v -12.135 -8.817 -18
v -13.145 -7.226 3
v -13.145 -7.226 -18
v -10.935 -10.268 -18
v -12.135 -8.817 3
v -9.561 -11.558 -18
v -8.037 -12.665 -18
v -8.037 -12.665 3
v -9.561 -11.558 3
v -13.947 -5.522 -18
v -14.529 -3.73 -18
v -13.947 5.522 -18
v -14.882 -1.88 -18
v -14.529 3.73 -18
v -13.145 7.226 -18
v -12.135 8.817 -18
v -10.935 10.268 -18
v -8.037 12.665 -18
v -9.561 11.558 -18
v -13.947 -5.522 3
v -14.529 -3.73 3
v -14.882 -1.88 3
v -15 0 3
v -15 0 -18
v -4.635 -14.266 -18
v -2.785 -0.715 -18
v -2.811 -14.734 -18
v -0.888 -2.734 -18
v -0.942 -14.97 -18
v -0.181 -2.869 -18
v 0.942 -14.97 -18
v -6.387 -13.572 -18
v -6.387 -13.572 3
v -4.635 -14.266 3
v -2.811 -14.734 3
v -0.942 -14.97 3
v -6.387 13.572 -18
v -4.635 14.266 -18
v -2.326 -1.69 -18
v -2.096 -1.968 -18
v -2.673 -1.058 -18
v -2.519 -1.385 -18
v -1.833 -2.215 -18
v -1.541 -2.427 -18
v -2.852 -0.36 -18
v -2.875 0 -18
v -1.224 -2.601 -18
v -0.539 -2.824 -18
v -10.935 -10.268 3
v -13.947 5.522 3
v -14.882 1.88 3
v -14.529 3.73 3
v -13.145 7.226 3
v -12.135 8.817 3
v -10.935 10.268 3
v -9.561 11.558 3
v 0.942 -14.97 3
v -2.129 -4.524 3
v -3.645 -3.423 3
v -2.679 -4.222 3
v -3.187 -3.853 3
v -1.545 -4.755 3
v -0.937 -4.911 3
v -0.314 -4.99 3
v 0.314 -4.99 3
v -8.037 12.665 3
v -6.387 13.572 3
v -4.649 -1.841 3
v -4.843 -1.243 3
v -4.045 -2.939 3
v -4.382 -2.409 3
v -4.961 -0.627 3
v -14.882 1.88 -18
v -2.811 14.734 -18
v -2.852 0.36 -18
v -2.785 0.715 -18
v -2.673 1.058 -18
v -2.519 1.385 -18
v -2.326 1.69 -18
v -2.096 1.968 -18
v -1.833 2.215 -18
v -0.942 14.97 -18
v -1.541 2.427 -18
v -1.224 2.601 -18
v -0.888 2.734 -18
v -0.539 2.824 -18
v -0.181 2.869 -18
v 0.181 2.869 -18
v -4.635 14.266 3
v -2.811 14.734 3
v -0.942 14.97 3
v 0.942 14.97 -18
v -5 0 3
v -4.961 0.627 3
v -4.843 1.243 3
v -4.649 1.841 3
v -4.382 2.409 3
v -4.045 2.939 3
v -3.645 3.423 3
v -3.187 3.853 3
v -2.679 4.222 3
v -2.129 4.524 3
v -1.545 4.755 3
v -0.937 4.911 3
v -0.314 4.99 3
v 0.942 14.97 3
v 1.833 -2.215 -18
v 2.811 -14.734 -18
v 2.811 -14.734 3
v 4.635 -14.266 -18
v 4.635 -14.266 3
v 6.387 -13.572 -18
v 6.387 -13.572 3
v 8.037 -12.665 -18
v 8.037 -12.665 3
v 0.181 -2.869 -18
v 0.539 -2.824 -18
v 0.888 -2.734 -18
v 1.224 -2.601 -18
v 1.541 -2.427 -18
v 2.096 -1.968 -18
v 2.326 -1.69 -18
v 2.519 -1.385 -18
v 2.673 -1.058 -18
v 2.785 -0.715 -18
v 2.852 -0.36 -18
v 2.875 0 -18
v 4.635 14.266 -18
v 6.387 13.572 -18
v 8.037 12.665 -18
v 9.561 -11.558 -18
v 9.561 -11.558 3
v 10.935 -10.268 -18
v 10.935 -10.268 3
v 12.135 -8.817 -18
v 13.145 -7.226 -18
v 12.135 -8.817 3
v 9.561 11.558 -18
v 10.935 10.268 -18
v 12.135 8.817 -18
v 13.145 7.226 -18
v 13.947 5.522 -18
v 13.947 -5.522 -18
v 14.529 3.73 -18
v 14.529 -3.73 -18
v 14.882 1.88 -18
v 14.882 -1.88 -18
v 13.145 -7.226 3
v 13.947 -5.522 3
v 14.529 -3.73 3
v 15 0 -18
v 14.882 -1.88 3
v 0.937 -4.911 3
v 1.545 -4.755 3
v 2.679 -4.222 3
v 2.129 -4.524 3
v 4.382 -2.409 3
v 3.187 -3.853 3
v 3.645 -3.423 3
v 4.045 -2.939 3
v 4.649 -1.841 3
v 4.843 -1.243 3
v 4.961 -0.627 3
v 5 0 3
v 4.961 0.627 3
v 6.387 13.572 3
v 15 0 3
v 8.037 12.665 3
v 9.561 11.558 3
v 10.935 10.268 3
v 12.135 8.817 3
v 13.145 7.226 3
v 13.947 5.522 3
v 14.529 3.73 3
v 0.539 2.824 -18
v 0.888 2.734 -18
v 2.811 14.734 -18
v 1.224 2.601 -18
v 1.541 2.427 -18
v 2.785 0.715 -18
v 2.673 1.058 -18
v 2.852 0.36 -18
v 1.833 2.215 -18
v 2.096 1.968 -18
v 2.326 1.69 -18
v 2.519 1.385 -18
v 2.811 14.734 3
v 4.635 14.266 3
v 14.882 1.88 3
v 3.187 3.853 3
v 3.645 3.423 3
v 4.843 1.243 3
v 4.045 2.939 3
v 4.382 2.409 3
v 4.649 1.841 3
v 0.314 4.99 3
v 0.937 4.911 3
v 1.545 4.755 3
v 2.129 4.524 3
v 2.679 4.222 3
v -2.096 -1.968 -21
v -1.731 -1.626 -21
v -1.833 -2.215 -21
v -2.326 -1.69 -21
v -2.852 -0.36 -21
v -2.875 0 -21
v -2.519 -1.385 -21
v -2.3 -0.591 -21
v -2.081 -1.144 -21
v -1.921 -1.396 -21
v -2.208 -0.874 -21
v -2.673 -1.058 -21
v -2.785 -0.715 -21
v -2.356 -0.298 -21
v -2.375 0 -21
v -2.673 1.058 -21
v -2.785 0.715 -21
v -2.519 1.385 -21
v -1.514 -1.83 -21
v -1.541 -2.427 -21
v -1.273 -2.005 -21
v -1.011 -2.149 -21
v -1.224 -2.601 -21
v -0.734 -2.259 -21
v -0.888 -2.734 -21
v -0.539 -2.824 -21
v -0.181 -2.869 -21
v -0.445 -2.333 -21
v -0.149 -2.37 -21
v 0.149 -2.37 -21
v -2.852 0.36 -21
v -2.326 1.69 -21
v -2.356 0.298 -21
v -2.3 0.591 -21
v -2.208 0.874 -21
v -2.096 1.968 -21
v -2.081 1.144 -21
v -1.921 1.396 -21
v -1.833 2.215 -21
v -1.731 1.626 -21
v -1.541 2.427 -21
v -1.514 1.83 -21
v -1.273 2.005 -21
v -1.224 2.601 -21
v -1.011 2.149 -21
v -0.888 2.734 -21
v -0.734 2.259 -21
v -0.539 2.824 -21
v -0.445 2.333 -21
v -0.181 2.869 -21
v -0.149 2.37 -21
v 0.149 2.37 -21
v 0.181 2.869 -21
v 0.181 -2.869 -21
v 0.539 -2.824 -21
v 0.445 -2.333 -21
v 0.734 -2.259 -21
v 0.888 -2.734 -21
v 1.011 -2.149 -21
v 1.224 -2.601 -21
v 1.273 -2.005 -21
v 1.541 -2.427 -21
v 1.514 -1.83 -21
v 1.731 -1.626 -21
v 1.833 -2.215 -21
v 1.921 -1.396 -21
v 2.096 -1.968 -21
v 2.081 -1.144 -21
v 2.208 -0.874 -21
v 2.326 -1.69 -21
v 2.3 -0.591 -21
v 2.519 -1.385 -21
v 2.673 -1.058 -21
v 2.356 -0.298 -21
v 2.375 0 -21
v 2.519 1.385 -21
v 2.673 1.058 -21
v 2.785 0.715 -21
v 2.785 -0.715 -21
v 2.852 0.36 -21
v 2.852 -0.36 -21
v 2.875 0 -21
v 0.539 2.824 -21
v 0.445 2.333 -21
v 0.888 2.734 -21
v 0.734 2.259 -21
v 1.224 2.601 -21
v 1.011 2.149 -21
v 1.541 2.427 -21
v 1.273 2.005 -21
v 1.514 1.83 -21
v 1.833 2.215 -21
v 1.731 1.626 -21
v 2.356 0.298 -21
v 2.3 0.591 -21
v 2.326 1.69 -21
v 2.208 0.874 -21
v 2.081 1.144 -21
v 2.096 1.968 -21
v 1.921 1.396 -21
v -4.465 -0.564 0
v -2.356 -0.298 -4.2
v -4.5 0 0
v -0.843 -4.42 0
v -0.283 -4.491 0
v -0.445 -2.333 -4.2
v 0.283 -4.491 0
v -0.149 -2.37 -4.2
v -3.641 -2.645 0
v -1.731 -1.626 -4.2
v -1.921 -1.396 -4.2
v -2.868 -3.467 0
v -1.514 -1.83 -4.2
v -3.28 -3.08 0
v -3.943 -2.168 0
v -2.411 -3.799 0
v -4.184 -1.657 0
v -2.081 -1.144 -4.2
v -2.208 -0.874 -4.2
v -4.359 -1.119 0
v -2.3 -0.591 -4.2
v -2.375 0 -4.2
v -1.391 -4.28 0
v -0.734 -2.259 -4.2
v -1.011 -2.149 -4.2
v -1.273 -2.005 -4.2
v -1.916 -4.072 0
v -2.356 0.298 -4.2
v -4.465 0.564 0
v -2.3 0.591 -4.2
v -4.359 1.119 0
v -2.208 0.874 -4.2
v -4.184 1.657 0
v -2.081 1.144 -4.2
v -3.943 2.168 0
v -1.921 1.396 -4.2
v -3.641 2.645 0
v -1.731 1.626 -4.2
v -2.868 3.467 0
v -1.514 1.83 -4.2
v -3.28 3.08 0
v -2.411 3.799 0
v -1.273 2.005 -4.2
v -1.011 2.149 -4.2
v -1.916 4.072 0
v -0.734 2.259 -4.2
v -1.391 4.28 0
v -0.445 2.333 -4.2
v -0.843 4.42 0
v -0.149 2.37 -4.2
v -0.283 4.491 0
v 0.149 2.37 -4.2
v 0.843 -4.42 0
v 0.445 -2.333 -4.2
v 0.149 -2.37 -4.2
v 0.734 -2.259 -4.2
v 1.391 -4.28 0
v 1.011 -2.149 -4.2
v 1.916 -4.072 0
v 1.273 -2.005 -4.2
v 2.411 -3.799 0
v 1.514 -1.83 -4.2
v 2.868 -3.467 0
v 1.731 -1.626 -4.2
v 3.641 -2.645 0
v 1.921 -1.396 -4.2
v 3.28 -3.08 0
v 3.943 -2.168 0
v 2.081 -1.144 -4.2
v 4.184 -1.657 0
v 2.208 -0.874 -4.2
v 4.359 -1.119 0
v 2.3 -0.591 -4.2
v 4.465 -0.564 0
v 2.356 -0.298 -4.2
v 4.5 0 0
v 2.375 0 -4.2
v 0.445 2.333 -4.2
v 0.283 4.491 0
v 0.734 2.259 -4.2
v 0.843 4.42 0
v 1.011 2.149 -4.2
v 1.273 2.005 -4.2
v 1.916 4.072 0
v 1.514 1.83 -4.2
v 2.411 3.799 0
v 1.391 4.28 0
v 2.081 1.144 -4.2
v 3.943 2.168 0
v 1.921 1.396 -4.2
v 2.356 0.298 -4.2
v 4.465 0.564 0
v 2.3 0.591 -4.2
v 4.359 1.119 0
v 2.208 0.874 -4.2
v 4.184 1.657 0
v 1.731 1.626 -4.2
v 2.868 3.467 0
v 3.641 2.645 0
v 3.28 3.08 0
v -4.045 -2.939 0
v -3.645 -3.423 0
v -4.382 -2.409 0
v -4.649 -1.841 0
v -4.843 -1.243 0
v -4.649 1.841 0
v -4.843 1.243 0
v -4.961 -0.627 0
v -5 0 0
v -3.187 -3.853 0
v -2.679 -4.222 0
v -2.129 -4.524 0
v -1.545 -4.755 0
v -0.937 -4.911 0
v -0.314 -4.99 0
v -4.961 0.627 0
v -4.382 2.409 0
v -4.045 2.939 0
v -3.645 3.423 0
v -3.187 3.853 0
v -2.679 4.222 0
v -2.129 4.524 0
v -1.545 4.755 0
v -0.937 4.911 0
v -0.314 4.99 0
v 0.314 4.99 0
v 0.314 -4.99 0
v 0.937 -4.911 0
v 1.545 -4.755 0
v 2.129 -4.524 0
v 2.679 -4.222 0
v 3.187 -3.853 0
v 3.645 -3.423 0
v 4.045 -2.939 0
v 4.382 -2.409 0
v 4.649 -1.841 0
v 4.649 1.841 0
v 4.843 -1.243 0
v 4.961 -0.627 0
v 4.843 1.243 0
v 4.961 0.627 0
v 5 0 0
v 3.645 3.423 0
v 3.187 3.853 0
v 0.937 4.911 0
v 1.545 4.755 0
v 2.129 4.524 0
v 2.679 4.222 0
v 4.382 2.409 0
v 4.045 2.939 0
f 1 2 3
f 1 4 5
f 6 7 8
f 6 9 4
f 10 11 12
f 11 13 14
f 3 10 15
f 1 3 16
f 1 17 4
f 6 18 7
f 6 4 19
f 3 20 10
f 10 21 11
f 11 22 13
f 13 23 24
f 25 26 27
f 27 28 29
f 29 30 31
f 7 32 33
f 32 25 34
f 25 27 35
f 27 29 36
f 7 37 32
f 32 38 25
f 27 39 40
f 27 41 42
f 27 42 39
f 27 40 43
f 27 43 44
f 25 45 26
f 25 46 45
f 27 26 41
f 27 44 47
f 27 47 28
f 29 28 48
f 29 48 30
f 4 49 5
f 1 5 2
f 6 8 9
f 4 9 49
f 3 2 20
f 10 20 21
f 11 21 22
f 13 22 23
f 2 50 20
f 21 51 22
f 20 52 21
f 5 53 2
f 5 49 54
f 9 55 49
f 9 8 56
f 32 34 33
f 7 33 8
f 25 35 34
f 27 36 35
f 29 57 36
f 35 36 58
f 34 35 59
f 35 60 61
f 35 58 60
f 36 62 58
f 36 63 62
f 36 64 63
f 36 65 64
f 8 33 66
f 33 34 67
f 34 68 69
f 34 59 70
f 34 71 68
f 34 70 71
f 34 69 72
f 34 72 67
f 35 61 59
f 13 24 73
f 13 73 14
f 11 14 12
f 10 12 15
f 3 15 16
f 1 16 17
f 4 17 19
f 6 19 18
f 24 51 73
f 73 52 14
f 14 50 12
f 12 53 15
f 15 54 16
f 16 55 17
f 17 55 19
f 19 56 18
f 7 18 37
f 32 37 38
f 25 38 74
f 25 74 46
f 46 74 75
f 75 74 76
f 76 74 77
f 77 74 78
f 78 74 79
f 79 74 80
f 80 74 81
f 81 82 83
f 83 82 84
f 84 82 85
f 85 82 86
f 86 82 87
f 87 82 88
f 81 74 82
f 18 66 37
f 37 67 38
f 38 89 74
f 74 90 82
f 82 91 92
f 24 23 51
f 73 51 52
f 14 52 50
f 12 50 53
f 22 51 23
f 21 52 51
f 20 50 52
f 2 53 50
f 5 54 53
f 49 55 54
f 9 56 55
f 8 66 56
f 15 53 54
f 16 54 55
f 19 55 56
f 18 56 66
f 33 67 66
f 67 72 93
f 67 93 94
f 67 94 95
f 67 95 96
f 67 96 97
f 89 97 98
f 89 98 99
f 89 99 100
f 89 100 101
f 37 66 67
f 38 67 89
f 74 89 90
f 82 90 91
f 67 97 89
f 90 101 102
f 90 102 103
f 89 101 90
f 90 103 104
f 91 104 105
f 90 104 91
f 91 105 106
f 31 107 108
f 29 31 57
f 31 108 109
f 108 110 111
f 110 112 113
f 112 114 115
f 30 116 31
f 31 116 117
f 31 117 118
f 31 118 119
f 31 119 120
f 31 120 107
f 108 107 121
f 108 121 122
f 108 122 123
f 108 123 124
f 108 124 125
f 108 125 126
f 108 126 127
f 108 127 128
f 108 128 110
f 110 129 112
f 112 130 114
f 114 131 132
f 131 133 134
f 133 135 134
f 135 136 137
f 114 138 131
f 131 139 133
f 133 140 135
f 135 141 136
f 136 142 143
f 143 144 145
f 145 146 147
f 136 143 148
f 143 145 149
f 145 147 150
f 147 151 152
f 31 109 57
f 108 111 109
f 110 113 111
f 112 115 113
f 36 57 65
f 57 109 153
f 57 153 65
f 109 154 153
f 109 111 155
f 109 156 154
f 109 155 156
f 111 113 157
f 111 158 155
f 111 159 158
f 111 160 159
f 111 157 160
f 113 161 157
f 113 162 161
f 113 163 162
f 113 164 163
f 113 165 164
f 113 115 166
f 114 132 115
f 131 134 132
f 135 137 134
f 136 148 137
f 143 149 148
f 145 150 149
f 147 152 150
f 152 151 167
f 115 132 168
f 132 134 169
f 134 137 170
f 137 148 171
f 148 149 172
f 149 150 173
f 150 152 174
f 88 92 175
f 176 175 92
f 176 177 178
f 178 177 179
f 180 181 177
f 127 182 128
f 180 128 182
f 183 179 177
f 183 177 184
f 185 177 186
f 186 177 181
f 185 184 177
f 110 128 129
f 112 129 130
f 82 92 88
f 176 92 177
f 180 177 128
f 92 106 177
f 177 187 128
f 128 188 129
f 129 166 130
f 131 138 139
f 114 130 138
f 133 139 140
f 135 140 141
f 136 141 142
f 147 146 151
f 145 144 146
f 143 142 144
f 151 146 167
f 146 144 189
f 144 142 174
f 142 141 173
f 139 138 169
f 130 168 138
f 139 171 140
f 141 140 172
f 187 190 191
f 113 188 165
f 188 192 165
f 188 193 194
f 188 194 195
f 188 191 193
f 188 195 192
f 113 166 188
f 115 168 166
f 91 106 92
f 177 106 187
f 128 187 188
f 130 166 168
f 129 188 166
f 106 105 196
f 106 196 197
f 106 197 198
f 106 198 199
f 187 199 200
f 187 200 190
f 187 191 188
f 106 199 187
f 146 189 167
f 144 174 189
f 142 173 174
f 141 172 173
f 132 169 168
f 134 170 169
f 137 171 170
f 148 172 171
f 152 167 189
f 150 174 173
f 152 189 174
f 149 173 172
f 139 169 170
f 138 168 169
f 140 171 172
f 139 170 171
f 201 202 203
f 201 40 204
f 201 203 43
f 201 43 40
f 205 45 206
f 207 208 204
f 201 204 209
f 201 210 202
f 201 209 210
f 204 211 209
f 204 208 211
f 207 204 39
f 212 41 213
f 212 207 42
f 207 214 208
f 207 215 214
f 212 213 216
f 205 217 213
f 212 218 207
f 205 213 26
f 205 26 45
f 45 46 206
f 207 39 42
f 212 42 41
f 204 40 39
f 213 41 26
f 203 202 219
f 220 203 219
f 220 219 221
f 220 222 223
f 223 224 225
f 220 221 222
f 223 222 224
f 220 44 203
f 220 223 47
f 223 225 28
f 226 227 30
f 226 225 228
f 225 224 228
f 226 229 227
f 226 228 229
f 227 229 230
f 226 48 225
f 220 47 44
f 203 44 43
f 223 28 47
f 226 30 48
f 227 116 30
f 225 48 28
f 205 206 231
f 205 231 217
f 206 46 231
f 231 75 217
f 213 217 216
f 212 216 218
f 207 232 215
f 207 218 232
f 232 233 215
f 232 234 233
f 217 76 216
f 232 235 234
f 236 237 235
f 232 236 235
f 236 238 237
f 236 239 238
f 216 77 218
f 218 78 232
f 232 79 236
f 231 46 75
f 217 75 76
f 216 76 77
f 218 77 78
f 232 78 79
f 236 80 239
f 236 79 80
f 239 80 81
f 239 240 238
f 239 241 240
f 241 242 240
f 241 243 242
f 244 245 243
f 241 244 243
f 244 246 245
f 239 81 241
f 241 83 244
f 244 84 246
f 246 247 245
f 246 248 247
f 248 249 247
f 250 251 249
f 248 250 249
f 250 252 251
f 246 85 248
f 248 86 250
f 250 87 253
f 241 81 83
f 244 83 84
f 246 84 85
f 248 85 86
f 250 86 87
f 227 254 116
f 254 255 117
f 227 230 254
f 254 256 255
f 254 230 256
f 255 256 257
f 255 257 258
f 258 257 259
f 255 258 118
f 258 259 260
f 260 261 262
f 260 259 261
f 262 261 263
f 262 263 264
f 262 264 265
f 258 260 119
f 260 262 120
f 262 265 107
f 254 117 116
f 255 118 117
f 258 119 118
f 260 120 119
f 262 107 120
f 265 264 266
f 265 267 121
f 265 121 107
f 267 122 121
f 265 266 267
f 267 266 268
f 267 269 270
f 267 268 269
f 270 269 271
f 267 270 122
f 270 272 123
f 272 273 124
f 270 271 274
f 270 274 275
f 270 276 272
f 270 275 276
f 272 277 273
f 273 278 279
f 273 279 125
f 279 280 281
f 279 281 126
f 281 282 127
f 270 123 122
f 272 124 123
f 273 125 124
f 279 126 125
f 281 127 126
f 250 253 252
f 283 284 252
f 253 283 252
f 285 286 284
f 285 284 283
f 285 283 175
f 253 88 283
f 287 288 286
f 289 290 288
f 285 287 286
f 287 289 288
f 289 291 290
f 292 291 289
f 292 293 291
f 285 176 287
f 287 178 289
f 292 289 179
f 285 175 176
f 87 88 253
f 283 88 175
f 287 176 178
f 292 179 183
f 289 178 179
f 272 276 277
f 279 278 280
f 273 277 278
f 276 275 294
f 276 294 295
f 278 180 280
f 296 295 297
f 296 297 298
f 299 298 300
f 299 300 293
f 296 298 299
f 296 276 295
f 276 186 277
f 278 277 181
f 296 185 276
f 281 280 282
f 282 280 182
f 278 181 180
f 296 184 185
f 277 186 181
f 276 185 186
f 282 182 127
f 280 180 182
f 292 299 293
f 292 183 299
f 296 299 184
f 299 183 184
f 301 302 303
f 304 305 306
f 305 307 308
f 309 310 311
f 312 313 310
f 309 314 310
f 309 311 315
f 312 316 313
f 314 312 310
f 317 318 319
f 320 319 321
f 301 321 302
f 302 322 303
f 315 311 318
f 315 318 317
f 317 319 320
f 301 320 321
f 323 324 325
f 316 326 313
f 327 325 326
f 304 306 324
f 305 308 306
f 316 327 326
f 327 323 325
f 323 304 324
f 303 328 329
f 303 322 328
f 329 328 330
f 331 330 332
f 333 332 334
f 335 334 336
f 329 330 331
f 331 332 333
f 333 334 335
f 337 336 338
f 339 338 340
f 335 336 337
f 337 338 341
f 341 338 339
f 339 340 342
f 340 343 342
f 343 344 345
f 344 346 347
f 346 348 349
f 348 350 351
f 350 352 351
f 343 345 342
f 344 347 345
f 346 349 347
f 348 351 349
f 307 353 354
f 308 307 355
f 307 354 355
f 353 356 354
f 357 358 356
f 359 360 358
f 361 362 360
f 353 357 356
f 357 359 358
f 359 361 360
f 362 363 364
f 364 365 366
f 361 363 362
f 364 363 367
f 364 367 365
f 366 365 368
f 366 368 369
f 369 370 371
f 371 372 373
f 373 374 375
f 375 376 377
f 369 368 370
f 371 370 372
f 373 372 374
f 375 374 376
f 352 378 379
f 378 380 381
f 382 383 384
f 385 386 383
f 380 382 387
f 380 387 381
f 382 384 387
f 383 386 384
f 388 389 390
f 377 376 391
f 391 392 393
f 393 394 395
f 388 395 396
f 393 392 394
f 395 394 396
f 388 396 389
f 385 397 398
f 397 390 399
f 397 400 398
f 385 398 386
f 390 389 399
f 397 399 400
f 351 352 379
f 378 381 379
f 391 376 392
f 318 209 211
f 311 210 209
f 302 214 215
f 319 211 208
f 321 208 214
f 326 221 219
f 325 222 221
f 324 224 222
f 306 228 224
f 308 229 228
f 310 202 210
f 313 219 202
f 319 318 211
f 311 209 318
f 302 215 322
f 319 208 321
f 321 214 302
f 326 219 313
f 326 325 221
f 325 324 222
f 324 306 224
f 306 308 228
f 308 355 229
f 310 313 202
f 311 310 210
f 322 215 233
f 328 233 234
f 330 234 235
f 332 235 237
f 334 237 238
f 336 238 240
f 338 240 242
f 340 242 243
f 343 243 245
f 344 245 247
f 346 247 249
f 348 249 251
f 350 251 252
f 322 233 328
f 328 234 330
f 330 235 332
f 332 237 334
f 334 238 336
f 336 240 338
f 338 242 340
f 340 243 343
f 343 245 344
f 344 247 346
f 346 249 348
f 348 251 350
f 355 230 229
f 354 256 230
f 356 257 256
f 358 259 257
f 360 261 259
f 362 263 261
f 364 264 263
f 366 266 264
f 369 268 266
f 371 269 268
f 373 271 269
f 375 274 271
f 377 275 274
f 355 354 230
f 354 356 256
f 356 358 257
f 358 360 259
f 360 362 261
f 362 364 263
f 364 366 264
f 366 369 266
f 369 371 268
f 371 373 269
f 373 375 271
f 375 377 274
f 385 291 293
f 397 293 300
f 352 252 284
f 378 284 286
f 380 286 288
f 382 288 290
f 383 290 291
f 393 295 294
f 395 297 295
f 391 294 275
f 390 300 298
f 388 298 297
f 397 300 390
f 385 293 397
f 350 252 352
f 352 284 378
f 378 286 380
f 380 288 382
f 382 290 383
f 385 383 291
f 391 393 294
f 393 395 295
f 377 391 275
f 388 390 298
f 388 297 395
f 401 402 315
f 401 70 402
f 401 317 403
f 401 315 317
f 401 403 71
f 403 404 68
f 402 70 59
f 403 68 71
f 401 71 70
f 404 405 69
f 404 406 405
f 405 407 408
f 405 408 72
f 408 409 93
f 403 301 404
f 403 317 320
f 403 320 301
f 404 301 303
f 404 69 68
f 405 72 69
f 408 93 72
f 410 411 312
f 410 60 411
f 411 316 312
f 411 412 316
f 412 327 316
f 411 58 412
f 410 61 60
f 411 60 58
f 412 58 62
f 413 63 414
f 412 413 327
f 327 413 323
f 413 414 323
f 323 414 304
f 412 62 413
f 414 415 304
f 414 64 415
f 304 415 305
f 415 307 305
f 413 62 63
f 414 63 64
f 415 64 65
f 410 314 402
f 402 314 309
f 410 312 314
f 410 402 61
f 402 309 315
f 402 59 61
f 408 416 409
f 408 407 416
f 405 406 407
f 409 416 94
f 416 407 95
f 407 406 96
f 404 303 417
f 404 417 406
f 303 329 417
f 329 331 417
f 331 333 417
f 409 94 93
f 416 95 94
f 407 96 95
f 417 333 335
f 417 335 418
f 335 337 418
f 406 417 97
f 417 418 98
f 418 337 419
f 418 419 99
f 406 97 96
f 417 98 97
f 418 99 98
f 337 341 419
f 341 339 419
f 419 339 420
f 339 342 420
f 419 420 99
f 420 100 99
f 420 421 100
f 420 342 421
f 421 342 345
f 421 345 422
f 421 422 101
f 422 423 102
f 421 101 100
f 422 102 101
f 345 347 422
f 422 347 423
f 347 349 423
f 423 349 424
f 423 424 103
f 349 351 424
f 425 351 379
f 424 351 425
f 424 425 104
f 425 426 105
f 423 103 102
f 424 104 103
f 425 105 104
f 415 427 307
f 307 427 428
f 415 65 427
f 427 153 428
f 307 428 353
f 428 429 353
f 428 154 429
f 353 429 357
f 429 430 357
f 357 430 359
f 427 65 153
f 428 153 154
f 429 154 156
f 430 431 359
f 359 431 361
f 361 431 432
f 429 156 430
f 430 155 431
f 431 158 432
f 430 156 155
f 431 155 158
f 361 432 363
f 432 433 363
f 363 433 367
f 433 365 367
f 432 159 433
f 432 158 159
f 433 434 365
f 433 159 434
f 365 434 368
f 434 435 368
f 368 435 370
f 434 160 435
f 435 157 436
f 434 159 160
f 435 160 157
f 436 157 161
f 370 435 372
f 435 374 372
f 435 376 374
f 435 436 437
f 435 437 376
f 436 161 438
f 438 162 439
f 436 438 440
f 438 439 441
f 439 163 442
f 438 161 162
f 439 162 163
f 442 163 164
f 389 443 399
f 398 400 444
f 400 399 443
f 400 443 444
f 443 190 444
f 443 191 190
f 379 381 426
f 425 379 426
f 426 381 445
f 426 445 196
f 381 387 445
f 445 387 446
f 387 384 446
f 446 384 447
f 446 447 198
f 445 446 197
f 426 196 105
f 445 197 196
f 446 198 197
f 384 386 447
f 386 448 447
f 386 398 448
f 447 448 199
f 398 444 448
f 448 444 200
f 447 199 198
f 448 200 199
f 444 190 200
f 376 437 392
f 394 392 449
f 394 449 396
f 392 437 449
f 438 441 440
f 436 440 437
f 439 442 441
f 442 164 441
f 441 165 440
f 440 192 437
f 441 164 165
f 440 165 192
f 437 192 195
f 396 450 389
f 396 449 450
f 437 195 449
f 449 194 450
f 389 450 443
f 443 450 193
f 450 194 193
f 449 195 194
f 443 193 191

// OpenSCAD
$fn = 50;

difference() {
	union() {
		translate(v = [0, 0, -18.0]) {
			cylinder(h = 21, r = 15.0);
		}
		#translate(v = [0, 0, -21.0]) {
			cylinder(h = 21, r = 2.875);
		}
	}
	union() {
		translate(v = [0, 0, 0]) {
			rotate(a = [0, 0, 0]) {
				difference() {
					union() {
						translate(v = [0, 0, -21.0]) {
							cylinder(h = 21, r = 2.25);
						}
						translate(v = [0, 0, -4.2]) {
							cylinder(h = 4.2, r1 = 2.375, r2 = 4.5);
						}
						translate(v = [0, 0, -21.0]) {
							cylinder(h = 21, r = 2.375);
						}
						translate(v = [0, 0, -21.0]) {
							cylinder(h = 21, r = 2.25);
						}
					}
					union();
				}
			}
		}
		#cylinder(h = 3, r = 5.0);
	}
}
